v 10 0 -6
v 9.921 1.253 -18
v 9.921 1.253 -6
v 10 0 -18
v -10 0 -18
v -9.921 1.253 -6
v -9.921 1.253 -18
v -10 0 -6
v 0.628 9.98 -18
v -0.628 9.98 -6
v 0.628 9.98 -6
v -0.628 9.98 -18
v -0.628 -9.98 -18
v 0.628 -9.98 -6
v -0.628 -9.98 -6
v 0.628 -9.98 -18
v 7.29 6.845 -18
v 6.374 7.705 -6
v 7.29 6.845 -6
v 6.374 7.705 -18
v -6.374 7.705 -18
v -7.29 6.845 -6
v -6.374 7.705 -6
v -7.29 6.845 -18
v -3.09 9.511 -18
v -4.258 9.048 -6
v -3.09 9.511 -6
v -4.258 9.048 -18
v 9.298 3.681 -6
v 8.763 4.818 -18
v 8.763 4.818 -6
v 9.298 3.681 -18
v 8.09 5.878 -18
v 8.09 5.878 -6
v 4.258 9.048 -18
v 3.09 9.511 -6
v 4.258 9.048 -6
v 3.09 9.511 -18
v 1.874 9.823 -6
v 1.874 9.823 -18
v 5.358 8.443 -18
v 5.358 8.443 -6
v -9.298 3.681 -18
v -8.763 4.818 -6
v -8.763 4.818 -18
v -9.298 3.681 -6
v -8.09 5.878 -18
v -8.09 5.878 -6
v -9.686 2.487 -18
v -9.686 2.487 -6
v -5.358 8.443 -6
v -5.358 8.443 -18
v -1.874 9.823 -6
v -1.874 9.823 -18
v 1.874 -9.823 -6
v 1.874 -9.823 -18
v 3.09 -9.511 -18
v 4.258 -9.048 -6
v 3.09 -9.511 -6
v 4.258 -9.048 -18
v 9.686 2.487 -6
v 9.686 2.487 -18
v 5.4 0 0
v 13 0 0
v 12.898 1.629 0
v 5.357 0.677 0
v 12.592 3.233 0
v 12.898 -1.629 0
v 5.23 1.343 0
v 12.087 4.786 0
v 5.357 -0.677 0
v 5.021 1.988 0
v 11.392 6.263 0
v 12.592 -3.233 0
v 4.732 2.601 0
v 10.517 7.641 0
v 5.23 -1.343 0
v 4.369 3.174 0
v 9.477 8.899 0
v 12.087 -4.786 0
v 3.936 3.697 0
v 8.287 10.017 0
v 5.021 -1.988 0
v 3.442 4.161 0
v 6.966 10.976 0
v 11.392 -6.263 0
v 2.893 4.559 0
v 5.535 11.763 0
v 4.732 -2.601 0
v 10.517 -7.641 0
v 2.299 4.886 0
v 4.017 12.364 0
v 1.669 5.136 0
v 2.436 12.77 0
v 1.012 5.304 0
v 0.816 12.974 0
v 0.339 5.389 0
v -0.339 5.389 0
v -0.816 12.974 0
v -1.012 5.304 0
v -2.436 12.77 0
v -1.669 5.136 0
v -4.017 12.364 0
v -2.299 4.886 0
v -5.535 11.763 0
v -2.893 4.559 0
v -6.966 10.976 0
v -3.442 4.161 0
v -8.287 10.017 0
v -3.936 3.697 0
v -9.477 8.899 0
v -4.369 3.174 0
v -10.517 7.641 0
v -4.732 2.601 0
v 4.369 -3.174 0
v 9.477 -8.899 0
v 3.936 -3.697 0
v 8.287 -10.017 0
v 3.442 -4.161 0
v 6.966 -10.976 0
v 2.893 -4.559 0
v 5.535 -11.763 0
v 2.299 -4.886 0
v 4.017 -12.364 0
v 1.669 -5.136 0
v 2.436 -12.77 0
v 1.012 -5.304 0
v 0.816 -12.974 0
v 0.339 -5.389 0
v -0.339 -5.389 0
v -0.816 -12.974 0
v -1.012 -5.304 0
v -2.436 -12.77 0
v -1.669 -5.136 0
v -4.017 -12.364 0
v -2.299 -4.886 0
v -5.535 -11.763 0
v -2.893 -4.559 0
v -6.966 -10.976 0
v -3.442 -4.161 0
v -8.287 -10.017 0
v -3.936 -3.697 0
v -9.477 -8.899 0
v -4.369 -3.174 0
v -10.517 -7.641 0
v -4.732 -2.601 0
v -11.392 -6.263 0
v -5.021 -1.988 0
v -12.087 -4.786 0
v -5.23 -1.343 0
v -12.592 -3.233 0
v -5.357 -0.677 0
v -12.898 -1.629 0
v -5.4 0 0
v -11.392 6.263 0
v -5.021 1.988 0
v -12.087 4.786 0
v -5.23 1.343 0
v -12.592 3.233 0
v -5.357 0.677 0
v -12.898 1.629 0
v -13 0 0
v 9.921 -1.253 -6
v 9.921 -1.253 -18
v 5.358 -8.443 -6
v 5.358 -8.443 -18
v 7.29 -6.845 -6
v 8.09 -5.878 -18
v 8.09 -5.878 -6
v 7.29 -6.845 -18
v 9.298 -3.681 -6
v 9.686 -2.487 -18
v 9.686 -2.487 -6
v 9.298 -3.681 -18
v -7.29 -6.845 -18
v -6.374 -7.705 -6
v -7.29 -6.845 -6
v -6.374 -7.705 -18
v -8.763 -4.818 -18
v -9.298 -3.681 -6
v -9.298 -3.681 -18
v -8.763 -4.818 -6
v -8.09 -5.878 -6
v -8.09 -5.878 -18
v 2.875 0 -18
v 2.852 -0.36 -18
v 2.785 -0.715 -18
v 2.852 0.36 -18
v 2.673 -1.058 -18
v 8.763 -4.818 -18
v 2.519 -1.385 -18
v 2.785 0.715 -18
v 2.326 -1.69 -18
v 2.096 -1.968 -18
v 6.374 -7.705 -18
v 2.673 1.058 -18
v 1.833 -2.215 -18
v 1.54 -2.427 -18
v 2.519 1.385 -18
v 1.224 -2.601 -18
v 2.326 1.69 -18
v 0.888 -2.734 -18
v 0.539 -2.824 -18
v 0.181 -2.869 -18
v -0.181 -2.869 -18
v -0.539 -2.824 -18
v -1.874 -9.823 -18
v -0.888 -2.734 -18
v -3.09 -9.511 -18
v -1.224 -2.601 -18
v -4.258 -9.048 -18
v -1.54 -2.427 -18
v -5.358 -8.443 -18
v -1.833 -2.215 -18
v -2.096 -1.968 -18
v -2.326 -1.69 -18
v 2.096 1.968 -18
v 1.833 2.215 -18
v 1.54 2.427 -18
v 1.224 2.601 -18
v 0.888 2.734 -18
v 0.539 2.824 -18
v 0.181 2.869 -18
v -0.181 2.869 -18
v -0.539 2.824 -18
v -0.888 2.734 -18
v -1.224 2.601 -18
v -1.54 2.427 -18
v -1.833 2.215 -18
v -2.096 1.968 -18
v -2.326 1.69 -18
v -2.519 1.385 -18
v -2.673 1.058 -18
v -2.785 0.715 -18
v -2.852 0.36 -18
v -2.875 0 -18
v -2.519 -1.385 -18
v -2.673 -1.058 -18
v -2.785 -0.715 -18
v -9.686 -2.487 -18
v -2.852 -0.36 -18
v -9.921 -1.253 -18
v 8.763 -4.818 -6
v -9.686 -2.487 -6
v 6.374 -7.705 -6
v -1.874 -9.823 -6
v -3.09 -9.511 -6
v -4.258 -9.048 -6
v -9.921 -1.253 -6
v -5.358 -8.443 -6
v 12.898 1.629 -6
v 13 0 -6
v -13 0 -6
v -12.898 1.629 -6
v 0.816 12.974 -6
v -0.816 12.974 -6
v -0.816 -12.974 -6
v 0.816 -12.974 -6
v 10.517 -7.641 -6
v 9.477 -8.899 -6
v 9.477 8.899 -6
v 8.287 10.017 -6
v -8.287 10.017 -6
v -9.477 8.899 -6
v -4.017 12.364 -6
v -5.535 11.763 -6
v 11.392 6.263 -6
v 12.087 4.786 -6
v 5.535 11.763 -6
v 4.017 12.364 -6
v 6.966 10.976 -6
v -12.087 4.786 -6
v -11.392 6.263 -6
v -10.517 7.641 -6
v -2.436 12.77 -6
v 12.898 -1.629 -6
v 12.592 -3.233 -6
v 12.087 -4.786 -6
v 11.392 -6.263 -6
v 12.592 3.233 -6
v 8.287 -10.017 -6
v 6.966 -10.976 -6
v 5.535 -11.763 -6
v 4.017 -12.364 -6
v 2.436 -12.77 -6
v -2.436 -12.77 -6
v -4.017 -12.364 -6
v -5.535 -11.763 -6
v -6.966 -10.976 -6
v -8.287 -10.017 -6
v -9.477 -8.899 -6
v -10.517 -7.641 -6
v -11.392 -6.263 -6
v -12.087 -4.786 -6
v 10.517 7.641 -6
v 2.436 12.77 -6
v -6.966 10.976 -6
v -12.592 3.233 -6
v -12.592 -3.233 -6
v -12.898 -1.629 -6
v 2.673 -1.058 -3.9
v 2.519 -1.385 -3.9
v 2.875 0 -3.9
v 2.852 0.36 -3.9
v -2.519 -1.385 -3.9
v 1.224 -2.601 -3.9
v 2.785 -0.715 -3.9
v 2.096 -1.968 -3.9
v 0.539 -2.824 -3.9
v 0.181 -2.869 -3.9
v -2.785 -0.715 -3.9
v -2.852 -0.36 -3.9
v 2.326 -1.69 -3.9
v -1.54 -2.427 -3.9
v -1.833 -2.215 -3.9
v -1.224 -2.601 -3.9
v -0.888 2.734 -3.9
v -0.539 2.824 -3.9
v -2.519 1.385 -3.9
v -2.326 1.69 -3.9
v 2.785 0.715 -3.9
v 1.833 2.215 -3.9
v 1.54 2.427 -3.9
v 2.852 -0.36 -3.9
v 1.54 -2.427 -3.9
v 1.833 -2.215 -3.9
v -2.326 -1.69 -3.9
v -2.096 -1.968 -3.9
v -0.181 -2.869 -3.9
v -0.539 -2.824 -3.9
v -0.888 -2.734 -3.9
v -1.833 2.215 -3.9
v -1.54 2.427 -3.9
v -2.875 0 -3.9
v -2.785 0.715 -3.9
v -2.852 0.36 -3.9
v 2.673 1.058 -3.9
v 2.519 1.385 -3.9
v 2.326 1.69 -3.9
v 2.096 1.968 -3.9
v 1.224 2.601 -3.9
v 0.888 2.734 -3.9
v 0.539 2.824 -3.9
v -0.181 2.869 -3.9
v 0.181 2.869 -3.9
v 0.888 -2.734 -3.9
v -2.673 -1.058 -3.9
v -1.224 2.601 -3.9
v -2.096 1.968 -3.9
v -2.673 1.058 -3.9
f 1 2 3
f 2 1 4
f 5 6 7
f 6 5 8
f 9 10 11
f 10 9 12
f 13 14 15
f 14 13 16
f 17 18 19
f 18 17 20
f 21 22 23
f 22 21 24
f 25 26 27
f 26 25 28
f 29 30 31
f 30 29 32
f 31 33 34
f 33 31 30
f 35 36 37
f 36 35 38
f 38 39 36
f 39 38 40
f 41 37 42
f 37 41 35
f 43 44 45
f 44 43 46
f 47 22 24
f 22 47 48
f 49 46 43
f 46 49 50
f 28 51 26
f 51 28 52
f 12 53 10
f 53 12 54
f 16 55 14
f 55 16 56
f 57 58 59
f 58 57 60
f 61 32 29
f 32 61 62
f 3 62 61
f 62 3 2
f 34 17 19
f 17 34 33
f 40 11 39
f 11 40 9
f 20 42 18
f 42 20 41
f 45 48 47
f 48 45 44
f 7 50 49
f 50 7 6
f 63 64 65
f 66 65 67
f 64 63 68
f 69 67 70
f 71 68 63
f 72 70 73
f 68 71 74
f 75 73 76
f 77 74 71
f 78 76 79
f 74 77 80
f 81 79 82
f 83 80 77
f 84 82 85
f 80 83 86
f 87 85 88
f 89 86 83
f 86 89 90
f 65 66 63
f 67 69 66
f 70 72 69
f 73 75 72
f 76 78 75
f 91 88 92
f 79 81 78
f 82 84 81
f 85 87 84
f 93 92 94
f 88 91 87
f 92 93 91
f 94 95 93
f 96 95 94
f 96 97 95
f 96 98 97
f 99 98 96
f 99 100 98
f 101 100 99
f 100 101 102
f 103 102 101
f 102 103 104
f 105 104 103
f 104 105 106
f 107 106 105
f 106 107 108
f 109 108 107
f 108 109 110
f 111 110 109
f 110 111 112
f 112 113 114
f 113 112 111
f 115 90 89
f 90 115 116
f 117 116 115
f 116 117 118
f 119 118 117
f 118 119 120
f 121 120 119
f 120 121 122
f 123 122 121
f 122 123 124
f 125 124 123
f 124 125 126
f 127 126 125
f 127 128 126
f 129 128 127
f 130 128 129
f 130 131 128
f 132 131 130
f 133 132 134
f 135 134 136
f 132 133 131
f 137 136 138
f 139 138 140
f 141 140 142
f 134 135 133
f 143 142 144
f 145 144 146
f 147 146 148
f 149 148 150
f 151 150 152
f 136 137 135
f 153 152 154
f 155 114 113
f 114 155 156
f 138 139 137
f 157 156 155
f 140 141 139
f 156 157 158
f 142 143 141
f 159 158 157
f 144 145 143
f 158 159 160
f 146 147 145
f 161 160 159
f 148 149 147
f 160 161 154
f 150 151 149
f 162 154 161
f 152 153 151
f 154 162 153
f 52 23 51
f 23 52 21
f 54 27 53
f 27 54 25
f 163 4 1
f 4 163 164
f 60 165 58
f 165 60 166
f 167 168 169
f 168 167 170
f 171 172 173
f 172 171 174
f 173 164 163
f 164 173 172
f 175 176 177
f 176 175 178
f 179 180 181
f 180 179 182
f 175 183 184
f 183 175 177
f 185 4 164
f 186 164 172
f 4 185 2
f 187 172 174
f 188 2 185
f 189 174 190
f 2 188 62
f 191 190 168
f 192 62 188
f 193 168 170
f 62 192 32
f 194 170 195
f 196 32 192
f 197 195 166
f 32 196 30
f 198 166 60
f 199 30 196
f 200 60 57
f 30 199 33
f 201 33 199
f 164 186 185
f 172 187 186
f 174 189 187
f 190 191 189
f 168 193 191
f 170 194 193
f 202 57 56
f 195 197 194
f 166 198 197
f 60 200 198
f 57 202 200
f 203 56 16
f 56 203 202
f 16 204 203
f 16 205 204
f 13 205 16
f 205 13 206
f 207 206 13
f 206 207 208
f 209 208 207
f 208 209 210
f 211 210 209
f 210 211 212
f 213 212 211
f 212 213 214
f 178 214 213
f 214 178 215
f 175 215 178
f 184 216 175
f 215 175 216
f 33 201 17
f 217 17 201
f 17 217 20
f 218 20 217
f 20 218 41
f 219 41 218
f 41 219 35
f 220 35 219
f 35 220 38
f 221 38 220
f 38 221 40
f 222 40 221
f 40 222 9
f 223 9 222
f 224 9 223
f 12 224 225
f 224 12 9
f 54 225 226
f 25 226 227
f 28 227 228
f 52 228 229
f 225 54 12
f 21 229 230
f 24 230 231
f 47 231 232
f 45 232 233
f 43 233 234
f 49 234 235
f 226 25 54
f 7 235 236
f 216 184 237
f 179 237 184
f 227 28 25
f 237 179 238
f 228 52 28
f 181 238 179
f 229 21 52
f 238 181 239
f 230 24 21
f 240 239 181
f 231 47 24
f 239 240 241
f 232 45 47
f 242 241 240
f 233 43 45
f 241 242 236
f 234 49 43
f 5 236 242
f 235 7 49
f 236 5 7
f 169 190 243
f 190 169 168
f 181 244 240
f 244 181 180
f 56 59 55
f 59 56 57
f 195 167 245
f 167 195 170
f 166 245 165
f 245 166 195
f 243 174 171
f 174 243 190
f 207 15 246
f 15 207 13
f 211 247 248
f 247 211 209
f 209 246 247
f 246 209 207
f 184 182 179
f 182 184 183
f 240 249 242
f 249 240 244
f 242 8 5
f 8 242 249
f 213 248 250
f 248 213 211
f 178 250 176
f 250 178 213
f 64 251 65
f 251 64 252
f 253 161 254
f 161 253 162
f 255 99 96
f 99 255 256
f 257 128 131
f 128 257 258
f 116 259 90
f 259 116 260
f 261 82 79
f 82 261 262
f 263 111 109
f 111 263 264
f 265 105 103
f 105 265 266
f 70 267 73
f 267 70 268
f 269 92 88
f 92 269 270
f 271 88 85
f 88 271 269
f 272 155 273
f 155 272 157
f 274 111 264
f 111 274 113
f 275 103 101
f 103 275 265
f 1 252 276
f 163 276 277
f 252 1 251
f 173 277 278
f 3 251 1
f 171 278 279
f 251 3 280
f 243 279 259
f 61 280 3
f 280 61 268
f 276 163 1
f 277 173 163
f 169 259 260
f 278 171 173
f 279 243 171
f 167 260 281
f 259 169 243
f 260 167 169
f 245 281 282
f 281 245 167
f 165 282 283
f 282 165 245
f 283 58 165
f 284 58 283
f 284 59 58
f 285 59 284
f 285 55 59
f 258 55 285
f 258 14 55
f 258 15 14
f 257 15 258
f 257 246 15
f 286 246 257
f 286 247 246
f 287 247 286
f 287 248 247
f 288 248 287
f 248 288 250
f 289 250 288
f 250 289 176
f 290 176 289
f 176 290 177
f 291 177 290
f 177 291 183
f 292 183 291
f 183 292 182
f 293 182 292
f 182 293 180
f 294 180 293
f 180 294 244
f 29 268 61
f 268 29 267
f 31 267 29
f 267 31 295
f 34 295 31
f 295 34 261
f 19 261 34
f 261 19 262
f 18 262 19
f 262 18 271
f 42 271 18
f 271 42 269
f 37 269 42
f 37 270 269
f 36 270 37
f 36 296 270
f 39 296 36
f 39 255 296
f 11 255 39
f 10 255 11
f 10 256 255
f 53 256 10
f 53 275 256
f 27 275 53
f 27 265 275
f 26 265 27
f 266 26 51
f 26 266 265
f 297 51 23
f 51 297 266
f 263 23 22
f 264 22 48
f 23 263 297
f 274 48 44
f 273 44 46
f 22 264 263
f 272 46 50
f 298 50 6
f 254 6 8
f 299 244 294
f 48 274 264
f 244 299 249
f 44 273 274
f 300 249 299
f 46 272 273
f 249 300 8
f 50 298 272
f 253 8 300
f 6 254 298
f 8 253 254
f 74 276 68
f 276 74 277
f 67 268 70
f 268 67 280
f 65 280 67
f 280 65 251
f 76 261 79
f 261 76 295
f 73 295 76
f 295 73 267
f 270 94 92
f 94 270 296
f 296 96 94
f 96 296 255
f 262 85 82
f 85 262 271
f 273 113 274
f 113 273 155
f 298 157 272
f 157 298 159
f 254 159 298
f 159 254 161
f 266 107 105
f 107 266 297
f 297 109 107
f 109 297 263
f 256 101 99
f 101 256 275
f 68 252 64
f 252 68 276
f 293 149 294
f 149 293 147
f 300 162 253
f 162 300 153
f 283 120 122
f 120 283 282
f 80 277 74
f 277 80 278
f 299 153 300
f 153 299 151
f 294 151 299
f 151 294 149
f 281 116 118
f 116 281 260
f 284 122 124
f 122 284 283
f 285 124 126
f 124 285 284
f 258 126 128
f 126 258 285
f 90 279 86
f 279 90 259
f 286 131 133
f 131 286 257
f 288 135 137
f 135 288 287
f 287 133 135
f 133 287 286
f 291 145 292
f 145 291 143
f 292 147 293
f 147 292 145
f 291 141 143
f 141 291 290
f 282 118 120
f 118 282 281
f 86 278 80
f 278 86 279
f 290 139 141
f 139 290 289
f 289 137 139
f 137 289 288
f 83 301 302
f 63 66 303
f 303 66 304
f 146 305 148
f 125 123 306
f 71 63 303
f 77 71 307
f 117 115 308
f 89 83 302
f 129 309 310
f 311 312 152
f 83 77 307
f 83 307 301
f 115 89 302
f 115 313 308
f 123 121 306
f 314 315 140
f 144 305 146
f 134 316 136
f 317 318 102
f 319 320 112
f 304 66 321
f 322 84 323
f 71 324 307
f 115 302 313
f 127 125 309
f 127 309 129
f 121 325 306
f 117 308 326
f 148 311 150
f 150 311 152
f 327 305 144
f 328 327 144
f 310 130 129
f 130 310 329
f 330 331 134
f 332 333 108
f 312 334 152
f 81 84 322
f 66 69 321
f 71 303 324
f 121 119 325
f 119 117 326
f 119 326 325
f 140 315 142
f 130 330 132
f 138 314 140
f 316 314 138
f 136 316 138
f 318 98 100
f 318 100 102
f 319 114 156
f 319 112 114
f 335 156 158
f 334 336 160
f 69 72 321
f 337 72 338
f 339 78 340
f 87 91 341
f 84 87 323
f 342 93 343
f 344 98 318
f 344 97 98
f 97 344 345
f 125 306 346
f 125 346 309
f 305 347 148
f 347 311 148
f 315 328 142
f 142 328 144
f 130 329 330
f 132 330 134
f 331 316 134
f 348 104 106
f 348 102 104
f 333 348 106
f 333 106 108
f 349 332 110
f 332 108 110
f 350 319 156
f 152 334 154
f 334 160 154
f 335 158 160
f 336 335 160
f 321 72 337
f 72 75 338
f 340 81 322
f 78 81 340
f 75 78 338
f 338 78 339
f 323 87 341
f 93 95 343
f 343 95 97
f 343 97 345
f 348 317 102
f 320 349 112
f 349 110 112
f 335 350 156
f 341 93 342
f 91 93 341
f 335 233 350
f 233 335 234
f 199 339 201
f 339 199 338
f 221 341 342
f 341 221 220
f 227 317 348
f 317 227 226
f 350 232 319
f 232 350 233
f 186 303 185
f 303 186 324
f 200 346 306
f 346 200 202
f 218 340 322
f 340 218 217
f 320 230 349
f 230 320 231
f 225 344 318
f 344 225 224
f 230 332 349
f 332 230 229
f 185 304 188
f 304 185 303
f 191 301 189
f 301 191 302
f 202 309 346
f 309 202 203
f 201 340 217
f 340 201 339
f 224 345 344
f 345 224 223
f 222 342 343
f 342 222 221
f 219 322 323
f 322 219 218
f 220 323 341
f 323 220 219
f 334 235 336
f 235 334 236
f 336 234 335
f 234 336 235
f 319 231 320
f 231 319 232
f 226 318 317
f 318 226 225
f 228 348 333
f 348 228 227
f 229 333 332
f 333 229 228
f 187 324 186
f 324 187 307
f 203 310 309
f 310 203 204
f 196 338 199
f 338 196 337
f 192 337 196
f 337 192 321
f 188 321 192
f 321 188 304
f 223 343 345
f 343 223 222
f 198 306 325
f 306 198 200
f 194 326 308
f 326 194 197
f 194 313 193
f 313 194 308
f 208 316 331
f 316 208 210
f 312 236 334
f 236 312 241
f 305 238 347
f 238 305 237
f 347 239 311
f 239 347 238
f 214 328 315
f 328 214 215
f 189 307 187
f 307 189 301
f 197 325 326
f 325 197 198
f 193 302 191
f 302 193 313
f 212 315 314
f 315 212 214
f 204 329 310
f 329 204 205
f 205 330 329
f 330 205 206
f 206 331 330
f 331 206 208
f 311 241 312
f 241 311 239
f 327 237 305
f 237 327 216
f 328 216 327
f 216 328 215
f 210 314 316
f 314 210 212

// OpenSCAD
$fn = 50;


difference() {
	union() {
		translate(v = [0, 0, -18.0000000000]) {
			cylinder(h = 18, r = 10.0000000000);
		}
		translate(v = [0, 0, -6.0000000000]) {
			cylinder(h = 6, r = 13.0000000000);
		}
	}
	union() {
		translate(v = [0, 0, 0]) {
			rotate(a = [0, 0, 0]) {
				difference() {
					union() {
						#translate(v = [0, 0, -18.0000000000]) {
							cylinder(h = 18, r = 2.6000000000);
						}
						#translate(v = [0, 0, -3.9000000000]) {
							cylinder(h = 3.9000000000, r1 = 2.8750000000, r2 = 5.4000000000);
						}
						#translate(v = [0, 0, -18.0000000000]) {
							cylinder(h = 18, r = 2.8750000000);
						}
						#translate(v = [0, 0, -18.0000000000]) {
							cylinder(h = 18, r = 2.6000000000);
						}
					}
					union();
				}
			}
		}
	}
}
